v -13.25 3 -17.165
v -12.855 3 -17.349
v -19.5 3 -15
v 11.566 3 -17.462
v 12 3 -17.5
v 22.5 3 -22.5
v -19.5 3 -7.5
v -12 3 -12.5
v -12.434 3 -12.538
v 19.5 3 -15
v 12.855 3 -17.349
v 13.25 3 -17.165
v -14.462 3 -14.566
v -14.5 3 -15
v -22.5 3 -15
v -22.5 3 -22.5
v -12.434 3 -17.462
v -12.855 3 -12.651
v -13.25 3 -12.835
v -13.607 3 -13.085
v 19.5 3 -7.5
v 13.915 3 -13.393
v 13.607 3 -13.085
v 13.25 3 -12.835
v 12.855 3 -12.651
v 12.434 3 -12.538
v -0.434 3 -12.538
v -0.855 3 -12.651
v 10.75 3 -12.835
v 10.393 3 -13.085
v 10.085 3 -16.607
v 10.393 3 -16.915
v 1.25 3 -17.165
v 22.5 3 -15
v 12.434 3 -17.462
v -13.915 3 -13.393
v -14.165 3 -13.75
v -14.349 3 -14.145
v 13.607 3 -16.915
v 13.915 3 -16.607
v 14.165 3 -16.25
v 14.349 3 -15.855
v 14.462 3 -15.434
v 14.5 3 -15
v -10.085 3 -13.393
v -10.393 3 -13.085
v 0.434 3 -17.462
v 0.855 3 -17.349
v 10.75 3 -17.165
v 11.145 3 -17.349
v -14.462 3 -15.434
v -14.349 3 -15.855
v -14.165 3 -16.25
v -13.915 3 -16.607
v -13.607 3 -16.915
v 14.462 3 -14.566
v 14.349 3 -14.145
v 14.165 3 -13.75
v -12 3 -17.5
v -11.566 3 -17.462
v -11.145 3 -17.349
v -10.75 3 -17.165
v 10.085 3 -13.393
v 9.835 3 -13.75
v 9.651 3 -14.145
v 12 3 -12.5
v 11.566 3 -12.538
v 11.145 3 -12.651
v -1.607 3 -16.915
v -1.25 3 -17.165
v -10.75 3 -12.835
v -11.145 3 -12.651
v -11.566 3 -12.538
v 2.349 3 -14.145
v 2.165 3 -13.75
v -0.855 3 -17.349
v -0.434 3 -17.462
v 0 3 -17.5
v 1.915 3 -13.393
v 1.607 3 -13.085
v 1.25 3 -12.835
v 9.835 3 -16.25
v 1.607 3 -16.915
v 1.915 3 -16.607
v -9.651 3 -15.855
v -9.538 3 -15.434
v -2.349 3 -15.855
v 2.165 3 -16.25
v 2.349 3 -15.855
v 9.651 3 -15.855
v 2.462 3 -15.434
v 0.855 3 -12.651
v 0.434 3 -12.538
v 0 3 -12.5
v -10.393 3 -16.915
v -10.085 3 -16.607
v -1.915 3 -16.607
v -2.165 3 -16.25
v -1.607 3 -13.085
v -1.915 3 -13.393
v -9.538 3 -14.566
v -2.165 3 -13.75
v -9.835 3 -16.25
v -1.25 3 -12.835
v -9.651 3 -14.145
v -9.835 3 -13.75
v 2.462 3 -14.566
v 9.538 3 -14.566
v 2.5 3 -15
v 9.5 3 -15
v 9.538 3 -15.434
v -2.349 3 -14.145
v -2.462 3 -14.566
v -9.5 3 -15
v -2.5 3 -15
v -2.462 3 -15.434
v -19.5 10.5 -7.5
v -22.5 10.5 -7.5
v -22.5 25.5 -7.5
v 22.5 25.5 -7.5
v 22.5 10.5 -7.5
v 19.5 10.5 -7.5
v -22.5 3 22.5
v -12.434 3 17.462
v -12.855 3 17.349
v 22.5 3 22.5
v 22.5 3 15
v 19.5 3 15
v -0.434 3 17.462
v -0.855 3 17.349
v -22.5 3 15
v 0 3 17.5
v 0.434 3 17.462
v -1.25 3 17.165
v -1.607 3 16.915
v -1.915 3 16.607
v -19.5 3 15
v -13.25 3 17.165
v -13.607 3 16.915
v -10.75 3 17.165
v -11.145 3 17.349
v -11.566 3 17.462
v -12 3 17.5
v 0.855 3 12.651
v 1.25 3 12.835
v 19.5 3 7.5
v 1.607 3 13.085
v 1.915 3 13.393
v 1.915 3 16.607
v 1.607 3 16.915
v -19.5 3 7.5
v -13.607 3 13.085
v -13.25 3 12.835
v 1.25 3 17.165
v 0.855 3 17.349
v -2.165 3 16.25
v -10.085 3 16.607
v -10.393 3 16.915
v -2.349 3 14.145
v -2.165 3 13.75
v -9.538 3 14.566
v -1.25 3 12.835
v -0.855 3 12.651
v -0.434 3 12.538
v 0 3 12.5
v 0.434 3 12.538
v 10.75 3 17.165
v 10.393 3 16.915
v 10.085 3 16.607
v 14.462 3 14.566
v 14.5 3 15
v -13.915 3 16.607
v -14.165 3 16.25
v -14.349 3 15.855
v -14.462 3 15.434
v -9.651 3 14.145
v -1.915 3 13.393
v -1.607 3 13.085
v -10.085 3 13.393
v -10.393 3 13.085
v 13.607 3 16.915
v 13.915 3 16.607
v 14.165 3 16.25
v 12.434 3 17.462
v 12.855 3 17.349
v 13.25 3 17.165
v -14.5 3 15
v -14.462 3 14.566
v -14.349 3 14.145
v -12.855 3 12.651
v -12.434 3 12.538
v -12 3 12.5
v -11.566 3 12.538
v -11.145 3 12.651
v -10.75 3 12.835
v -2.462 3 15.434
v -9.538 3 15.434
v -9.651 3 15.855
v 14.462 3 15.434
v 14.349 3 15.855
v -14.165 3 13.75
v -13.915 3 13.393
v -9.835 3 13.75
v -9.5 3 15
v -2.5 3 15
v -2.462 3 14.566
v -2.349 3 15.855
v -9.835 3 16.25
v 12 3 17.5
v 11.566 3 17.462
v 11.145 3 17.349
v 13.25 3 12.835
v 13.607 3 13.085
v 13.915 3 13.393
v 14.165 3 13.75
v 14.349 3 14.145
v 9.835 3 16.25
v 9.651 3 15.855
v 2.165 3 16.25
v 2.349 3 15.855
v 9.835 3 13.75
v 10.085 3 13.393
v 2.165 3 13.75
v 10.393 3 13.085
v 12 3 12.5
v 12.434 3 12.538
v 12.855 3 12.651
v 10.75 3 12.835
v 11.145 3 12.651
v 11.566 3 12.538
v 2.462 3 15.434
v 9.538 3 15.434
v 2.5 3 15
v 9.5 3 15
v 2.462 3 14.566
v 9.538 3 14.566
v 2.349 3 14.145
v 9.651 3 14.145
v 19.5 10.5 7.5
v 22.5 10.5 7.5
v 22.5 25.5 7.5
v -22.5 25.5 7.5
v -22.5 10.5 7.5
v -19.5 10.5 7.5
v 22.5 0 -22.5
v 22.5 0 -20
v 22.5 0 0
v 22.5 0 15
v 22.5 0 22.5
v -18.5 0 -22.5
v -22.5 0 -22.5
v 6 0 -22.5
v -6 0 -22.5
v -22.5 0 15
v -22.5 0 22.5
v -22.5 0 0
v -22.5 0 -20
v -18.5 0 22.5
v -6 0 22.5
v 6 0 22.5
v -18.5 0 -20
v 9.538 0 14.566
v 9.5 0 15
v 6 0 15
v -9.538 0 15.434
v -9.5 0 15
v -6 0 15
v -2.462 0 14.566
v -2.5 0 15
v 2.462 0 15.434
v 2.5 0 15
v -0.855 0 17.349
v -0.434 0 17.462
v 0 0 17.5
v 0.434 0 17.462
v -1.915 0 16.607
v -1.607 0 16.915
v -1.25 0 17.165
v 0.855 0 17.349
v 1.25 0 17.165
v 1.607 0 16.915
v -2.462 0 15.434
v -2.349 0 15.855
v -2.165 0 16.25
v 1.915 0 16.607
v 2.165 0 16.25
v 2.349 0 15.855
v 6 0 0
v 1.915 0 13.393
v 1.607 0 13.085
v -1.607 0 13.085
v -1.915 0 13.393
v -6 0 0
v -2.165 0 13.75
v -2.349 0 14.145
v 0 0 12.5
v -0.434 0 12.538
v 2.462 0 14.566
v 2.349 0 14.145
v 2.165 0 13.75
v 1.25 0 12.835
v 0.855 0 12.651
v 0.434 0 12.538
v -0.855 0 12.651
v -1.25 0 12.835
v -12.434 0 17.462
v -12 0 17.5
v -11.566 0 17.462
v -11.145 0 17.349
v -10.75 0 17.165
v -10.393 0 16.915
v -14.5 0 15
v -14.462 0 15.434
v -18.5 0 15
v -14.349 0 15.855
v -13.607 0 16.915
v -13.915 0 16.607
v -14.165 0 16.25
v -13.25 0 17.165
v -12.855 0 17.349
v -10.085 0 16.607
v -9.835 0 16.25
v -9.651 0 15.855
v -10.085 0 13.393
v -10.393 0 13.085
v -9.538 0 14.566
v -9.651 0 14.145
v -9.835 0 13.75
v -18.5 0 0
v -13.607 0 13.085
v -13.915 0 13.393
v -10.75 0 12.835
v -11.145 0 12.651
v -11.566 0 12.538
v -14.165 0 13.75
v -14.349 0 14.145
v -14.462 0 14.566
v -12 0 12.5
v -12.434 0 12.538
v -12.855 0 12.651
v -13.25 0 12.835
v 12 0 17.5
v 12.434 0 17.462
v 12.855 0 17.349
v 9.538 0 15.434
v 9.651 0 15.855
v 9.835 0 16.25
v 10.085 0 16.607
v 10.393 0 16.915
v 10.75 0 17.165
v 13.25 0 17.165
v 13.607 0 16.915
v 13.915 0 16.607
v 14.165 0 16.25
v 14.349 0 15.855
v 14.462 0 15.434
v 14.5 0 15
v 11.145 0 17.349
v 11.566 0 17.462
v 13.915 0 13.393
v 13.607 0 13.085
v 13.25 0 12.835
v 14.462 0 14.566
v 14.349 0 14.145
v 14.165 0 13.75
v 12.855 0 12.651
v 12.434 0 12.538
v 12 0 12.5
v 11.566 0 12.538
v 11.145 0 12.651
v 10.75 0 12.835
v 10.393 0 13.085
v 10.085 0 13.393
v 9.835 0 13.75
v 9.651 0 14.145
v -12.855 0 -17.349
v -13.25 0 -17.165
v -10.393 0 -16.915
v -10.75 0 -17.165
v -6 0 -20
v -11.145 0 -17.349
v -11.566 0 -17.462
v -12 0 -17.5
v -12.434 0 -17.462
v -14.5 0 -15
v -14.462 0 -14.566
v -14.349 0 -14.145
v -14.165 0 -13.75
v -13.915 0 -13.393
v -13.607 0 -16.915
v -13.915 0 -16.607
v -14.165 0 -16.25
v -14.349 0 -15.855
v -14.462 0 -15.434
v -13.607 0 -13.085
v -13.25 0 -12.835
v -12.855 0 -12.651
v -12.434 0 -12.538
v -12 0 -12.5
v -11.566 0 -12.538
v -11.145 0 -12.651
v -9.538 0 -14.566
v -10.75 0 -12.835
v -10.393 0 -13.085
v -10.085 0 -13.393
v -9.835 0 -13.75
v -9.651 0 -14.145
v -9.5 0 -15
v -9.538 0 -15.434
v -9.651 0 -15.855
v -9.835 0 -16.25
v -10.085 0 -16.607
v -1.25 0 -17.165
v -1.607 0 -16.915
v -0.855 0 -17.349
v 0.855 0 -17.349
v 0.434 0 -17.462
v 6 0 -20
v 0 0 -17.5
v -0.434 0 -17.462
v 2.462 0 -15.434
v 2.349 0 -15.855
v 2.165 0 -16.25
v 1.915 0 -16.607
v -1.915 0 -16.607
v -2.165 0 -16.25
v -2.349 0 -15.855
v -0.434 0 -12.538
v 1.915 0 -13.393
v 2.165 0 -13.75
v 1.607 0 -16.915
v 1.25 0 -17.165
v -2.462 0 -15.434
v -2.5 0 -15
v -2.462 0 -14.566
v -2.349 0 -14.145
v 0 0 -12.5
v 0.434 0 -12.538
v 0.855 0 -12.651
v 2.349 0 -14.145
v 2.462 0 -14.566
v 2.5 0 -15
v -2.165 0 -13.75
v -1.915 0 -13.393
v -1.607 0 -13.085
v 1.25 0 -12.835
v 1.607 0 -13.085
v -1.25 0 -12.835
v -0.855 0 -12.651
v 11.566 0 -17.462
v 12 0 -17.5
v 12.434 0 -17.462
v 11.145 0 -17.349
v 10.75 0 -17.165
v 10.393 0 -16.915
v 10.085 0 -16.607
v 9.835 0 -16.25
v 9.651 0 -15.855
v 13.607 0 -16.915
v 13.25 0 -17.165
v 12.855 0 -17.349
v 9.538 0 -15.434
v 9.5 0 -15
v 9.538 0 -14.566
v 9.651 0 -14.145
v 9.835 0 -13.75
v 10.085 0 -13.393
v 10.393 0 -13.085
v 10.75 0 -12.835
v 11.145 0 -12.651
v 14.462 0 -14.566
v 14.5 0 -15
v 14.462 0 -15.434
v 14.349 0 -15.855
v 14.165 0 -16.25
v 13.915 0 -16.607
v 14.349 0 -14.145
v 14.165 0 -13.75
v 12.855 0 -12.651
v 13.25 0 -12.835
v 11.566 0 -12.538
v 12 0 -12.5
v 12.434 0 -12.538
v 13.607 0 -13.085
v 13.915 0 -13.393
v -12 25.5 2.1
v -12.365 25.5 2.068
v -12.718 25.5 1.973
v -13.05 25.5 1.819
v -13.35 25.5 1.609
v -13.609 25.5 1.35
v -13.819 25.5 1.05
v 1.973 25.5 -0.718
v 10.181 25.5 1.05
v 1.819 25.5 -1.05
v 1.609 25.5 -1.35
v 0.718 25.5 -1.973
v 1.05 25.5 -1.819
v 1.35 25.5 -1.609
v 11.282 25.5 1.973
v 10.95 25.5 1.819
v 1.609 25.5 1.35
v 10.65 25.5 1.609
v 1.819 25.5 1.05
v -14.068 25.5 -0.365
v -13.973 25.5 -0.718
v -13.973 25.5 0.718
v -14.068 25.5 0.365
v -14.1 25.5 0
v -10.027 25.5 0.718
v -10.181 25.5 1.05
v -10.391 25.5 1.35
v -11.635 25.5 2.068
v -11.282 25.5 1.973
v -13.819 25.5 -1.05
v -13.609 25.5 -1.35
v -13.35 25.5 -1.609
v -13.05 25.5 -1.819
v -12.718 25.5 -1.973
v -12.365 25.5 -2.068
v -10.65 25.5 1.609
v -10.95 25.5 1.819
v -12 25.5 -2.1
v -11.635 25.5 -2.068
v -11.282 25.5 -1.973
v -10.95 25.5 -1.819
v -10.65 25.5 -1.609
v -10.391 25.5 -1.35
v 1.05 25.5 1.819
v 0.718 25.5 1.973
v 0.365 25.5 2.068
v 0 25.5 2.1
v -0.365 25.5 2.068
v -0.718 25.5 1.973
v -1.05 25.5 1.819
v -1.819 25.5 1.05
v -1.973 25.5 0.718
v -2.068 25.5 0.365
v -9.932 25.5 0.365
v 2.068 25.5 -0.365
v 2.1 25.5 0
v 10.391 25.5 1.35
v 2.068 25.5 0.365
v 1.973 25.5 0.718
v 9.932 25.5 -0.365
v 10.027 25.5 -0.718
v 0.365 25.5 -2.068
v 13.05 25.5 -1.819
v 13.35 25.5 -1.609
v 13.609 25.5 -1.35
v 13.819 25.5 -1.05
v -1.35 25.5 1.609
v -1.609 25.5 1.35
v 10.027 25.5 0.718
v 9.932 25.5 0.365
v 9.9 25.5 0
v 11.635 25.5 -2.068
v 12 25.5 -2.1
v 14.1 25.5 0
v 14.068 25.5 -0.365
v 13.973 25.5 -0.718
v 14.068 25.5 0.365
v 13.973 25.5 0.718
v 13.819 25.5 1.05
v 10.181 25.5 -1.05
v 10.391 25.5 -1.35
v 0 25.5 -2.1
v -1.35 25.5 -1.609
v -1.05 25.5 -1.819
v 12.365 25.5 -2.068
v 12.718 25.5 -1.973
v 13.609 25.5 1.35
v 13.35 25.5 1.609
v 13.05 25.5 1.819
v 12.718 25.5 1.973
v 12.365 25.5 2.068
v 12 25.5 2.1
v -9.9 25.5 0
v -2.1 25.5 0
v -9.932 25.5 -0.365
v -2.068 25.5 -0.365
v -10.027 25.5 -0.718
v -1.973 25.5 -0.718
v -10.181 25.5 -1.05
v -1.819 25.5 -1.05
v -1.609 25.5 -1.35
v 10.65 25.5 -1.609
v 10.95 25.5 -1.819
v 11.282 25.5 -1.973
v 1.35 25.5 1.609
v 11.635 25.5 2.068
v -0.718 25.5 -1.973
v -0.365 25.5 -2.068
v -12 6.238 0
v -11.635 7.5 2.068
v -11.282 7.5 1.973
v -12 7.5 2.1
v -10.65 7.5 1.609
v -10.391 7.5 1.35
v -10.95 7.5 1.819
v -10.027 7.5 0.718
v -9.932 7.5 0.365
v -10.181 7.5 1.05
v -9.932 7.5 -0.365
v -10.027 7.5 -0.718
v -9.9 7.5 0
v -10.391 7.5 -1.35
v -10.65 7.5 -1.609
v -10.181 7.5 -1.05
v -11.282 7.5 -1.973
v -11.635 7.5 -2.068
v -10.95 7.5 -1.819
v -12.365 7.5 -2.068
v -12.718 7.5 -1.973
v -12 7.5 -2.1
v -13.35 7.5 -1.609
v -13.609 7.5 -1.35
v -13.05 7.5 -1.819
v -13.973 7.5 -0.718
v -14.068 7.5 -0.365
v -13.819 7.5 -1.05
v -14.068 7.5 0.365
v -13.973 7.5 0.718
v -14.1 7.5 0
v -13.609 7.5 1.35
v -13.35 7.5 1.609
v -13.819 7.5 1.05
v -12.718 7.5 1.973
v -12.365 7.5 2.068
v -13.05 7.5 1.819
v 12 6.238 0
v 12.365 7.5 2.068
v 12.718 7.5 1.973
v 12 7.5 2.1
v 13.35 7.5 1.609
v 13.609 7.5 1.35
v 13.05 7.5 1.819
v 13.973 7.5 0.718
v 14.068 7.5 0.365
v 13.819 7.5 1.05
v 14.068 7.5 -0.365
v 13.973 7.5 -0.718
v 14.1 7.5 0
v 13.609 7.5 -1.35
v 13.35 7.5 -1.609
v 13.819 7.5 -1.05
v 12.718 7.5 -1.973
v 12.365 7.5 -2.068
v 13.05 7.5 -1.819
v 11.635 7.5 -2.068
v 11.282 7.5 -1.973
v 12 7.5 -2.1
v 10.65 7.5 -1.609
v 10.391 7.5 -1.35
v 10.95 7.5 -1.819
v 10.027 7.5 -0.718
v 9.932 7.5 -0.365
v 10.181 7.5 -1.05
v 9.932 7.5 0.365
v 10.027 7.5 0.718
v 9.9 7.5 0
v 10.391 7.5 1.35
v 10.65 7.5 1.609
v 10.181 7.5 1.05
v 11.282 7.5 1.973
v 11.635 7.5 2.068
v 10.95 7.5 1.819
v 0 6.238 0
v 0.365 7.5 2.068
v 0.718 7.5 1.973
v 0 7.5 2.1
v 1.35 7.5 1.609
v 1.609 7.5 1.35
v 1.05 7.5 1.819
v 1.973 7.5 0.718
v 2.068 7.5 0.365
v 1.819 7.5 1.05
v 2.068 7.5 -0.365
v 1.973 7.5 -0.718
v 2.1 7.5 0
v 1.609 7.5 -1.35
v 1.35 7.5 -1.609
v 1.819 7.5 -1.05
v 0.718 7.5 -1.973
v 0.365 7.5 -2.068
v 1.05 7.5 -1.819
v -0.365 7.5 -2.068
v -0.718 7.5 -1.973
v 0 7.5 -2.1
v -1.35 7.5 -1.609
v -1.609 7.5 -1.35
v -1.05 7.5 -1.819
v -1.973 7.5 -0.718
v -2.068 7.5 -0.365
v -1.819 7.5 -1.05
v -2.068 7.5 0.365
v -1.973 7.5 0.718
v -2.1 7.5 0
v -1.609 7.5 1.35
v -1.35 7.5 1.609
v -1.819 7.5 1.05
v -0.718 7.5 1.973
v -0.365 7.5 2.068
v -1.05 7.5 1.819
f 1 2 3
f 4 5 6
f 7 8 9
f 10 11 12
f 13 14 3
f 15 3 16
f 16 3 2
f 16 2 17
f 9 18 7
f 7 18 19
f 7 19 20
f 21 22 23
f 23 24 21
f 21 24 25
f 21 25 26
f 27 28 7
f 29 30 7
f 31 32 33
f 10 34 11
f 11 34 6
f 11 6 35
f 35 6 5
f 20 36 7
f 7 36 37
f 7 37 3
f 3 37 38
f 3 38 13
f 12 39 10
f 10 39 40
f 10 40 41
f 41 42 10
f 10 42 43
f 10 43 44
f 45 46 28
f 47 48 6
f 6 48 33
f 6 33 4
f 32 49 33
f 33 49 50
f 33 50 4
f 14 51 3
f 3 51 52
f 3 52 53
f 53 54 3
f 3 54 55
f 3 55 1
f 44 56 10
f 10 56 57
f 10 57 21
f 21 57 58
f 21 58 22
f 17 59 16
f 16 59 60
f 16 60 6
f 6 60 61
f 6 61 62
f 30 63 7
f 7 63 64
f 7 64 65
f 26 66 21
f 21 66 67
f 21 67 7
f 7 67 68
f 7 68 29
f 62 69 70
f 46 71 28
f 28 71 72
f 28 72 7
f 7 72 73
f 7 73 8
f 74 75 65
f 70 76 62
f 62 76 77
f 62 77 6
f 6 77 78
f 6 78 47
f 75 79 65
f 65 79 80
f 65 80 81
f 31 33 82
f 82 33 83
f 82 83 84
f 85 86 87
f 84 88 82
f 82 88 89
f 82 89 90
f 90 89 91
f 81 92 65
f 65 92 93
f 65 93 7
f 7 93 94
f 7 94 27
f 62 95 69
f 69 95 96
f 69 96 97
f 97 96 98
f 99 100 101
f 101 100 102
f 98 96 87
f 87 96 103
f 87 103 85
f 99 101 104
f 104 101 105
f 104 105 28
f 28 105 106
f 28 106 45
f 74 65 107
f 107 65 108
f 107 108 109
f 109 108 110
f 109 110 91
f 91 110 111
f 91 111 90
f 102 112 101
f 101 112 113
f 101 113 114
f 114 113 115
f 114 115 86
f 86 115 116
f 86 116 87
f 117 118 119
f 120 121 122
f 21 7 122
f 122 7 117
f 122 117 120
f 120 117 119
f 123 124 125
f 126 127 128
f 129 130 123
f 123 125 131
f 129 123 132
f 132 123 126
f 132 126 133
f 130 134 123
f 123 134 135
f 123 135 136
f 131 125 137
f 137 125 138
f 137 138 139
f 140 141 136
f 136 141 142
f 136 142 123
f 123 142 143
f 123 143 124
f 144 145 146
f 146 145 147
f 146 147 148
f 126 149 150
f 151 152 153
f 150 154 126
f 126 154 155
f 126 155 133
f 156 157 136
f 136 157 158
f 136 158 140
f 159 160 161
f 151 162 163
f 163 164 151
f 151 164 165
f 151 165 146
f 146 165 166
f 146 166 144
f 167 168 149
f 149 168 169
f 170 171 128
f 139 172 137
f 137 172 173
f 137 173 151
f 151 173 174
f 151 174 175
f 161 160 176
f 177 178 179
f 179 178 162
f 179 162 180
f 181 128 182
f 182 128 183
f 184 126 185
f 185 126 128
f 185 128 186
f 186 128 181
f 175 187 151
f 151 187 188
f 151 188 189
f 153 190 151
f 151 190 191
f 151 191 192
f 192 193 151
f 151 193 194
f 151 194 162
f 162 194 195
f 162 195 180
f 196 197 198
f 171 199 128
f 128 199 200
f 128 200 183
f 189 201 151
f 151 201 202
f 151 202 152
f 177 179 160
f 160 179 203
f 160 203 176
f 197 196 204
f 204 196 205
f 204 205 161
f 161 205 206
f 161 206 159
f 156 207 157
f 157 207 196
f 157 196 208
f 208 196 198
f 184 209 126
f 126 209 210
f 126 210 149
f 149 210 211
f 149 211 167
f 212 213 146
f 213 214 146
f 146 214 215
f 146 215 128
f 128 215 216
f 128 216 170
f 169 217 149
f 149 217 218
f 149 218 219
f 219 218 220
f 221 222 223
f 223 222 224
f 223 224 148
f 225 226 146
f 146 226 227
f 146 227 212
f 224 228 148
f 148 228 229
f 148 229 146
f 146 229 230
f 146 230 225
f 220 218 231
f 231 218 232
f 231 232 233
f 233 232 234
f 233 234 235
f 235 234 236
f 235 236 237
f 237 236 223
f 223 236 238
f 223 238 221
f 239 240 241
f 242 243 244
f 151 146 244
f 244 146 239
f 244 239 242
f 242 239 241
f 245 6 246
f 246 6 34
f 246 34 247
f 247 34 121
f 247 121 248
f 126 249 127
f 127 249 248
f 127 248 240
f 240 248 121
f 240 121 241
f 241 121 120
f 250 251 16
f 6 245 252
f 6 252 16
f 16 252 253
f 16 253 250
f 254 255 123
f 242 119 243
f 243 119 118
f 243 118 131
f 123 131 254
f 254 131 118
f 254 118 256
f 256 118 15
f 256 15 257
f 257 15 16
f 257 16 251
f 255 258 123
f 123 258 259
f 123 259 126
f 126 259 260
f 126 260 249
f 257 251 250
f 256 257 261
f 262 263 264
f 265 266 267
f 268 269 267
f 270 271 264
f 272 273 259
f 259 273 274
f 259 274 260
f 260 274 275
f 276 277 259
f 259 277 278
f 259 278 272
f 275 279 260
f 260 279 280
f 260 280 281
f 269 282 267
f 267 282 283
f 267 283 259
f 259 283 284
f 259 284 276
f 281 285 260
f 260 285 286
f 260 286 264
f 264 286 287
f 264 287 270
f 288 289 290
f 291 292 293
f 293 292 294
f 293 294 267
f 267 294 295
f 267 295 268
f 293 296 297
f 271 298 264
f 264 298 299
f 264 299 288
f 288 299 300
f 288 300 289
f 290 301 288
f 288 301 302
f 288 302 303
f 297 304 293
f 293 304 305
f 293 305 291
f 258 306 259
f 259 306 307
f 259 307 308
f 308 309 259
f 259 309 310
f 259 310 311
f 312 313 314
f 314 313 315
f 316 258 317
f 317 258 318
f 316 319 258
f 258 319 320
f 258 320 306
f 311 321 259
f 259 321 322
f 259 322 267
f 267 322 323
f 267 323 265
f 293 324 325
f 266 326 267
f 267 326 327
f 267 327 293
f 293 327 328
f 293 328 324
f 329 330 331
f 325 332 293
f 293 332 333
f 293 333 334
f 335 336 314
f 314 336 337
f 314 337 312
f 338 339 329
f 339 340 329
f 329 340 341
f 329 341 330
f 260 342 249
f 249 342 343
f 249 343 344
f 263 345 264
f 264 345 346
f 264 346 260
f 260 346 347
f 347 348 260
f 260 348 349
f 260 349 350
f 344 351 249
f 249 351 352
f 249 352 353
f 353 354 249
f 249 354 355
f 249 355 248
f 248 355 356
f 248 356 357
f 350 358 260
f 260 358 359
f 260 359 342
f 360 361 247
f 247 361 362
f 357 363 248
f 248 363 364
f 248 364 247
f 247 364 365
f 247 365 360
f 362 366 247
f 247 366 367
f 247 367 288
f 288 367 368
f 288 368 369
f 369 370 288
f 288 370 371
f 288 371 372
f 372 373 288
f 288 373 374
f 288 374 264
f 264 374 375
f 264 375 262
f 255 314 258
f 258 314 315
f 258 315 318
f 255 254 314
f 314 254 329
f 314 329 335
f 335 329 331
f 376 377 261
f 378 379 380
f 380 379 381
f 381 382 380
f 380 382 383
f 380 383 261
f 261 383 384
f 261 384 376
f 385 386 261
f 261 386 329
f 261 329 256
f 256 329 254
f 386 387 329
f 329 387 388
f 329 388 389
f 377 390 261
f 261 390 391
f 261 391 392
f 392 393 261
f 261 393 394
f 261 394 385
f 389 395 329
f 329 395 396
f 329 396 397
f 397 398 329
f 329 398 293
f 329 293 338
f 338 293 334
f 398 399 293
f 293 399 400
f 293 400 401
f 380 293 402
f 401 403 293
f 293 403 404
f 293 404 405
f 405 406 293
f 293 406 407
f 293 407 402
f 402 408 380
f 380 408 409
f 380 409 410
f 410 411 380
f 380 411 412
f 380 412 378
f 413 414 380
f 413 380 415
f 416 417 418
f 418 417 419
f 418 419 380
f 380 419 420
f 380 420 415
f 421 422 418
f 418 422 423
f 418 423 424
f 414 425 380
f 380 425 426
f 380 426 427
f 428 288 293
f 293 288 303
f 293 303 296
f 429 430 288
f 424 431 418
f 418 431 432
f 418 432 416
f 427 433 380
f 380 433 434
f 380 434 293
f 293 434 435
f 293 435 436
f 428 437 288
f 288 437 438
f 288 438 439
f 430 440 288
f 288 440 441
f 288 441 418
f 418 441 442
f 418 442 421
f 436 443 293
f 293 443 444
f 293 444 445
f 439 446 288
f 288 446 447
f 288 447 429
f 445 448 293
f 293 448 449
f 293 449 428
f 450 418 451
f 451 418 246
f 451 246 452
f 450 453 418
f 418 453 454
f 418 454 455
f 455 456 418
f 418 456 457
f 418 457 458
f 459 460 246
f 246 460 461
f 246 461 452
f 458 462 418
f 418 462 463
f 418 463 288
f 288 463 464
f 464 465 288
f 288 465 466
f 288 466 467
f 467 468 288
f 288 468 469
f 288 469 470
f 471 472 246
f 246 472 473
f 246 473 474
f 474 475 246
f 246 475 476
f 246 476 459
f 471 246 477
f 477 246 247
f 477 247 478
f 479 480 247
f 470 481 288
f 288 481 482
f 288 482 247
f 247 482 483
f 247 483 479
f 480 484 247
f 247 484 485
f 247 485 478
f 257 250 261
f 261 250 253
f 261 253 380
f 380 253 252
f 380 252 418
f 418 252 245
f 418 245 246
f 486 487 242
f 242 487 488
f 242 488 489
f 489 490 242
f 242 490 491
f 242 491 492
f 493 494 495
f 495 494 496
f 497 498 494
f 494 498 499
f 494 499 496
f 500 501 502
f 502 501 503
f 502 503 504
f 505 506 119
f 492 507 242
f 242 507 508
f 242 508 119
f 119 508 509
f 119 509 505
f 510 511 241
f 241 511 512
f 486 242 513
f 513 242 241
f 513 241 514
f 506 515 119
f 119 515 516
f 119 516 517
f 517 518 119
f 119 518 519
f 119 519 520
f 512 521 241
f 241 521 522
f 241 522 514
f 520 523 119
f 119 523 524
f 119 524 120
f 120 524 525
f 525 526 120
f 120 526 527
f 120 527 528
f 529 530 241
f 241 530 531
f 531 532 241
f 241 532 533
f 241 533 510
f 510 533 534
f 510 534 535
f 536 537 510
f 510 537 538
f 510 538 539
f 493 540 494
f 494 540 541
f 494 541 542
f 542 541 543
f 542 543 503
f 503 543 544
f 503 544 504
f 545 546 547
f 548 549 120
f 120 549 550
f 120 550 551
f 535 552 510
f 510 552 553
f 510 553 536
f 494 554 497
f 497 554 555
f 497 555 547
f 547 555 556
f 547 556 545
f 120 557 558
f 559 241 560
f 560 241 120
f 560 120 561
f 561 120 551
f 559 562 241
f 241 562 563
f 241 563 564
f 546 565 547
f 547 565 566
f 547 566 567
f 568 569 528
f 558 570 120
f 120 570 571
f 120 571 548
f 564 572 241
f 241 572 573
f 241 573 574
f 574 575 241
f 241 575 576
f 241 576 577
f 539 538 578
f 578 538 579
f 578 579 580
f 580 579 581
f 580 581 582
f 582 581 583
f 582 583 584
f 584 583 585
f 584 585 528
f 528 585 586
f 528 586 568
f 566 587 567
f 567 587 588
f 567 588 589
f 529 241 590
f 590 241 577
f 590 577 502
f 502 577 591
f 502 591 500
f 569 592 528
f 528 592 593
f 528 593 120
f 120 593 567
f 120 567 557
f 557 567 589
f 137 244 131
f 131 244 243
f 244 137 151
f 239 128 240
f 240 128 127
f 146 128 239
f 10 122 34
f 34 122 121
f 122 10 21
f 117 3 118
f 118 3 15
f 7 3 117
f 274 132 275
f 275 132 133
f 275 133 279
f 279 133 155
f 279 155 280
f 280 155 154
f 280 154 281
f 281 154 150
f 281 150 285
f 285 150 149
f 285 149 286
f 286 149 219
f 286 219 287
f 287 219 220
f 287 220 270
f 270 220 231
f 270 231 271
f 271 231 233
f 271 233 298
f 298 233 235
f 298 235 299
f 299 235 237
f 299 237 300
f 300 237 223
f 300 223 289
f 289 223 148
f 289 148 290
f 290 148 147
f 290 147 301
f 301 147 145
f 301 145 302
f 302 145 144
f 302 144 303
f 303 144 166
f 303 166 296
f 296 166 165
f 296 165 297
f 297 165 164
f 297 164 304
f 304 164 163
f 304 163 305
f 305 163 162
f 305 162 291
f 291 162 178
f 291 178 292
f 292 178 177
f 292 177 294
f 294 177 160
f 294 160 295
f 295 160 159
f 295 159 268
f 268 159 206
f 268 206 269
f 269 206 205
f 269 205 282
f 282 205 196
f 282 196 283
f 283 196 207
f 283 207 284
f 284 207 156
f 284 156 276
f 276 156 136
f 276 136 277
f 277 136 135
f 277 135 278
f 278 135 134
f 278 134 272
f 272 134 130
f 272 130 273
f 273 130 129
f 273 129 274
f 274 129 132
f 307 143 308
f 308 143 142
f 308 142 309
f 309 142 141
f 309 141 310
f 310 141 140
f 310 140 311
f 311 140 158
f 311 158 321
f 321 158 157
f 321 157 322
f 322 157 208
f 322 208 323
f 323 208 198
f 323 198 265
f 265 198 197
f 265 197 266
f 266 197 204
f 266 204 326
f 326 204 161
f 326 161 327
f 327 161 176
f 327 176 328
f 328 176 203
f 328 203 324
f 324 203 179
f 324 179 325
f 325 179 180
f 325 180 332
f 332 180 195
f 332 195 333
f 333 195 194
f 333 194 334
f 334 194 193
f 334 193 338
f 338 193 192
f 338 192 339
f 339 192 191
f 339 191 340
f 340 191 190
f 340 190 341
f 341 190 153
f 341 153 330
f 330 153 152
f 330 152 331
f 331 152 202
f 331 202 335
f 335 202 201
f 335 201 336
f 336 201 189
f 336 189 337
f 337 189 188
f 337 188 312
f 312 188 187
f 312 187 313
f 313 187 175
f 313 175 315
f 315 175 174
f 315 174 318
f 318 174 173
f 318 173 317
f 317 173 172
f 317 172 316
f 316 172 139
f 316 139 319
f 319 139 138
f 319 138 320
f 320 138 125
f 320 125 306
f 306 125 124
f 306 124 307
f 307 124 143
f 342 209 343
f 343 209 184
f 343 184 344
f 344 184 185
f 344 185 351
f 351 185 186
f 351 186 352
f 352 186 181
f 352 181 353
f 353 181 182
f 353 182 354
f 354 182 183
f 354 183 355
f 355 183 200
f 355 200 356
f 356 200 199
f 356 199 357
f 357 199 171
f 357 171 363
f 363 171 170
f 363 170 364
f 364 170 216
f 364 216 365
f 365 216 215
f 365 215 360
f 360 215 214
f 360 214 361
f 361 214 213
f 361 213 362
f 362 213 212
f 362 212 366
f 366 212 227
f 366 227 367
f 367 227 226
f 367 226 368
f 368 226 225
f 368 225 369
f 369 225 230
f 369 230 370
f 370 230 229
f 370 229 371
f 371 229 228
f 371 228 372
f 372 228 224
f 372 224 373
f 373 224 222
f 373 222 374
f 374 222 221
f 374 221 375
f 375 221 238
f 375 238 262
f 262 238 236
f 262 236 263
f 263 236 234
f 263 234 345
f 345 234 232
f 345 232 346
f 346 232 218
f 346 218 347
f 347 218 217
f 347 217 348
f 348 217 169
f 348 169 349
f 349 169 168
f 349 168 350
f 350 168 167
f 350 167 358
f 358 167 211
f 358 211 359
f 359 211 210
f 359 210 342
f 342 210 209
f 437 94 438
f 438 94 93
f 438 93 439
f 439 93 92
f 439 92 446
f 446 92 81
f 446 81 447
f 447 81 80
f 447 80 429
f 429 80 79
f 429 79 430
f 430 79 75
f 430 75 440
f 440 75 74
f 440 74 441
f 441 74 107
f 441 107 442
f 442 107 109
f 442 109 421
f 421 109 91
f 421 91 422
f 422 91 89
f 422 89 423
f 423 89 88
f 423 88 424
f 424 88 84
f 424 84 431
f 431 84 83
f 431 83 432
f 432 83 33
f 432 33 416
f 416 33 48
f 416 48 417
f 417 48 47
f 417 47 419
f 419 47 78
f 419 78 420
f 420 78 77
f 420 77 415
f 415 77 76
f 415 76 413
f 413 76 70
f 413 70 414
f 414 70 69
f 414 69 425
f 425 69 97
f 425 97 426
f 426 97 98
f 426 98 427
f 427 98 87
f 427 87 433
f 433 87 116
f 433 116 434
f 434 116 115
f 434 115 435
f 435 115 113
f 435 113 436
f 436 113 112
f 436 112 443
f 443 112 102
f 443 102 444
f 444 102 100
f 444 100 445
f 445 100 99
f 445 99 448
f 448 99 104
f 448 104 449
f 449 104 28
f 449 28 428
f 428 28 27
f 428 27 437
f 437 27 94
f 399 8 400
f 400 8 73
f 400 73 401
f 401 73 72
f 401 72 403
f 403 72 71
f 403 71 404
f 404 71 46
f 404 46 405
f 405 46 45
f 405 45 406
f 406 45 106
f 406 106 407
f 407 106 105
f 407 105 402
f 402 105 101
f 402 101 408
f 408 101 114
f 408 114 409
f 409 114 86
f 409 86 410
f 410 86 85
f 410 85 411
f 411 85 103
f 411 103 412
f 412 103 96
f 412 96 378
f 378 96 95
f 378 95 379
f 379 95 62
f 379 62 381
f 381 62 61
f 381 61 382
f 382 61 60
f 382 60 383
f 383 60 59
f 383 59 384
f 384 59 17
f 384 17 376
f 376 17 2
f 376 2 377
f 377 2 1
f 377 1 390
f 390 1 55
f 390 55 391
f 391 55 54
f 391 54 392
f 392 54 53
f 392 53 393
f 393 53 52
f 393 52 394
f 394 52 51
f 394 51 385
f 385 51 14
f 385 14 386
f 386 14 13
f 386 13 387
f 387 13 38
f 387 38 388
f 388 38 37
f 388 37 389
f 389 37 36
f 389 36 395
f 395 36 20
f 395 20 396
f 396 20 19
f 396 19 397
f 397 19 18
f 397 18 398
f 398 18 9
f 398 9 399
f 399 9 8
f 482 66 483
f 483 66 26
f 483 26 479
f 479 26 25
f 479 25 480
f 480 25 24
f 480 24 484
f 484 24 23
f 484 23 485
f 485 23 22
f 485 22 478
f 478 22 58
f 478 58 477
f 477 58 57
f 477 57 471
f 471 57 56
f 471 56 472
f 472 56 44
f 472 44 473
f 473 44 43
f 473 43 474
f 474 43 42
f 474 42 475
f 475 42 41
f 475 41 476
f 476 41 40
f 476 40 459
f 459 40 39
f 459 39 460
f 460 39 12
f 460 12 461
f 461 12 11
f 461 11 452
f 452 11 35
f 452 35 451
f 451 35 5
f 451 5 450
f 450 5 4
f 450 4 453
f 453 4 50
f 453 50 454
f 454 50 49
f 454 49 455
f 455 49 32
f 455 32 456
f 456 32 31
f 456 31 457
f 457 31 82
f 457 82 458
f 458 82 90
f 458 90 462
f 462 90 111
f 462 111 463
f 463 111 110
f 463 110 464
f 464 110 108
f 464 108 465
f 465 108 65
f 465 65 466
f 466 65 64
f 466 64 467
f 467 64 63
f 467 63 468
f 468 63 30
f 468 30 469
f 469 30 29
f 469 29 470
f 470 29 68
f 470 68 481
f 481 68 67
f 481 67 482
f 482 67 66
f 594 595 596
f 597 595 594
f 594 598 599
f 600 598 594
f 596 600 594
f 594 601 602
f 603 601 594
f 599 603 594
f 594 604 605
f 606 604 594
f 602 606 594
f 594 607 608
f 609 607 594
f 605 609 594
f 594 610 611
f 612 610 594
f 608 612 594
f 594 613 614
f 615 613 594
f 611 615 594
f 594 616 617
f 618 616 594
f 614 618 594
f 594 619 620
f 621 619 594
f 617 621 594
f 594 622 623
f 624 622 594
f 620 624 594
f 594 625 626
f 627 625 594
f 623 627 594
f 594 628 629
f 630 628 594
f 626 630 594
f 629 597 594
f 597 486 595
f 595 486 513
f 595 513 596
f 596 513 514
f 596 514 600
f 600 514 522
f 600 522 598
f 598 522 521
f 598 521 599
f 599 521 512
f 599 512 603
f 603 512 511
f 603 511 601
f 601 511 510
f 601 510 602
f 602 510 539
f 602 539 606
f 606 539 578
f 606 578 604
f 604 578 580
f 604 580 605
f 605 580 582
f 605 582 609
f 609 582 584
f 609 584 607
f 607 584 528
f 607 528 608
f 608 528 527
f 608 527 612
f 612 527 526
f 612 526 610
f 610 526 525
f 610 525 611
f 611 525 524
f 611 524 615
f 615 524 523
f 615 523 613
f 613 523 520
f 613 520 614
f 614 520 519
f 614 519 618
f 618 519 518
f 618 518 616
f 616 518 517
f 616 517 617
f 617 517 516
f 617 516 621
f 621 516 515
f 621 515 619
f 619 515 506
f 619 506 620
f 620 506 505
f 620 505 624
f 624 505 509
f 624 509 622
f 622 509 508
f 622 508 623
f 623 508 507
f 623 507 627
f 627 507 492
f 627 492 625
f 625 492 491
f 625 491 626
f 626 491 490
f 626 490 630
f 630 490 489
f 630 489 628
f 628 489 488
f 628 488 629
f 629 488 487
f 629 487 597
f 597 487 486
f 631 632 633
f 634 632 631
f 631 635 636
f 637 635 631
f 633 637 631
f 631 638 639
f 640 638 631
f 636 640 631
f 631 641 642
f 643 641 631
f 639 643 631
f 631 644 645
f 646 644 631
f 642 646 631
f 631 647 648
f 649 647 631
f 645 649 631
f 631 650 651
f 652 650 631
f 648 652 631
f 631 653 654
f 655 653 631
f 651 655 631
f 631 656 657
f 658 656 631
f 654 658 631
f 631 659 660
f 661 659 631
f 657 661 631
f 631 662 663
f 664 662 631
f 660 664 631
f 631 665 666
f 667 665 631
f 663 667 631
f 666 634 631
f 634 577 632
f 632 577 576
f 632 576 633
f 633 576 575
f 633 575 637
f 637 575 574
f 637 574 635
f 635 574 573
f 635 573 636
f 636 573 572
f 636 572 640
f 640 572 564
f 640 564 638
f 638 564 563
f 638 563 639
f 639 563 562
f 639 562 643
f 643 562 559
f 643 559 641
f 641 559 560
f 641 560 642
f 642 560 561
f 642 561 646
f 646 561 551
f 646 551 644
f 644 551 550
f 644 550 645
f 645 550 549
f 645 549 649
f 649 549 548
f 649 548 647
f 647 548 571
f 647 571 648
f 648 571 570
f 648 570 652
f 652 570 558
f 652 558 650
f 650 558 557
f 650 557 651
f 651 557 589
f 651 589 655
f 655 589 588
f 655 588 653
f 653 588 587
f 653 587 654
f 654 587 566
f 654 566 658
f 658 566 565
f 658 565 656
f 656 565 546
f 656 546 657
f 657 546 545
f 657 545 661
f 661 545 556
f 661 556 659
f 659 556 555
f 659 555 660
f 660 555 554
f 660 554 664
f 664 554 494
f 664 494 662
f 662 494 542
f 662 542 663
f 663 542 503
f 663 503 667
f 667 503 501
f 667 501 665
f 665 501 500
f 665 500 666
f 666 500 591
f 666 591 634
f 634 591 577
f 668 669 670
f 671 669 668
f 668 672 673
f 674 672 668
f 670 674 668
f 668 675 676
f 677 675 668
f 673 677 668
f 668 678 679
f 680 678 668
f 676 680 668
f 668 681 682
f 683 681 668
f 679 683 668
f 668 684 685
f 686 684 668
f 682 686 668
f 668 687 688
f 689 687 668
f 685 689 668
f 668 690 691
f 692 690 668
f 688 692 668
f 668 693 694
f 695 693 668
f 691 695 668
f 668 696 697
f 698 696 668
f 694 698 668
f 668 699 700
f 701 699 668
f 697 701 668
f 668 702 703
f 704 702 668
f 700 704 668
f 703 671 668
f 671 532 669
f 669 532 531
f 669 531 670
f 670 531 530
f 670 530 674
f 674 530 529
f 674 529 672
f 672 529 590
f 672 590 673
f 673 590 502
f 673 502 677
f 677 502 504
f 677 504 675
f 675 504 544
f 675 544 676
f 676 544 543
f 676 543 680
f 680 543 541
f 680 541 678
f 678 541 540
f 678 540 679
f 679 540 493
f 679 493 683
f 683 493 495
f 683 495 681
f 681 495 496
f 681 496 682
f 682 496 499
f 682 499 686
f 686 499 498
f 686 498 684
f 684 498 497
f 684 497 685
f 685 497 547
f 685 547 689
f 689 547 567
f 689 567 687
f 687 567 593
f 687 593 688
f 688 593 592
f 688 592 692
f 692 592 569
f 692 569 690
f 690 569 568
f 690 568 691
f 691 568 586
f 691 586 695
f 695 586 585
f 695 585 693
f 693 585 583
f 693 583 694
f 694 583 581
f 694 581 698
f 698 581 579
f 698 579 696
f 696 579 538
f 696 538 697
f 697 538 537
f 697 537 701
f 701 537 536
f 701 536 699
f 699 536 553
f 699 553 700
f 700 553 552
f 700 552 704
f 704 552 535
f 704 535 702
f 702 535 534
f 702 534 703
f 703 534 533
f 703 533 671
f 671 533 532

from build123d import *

# Parameters (mm, degrees)
CROQUIS1_W                = 45
CROQUIS1_H                = 45
SALIENTE_EXTRUIR1_DEPTH   = 3
CROQUIS2_W                = 45
CROQUIS2_H                = 15
SALIENTE_EXTRUIR2_DEPTH   = 22.5
SALIENTE_EXTRUIR3_DEPTH   = 3
SIMETR_A2_COPY_1_DEPTH    = 3
CROQUIS4_R                = 2.5
CORTAR_EXTRUIR1_DEPTH     = 3
TALADRO_ROSCADO_M51_D     = 4.2
TALADRO_ROSCADO_M51_DEPTH = 18
TALADRO_ROSCADO_M51_TIP   = 1.2618073


with BuildPart() as part:
    # Croquis1 → Saliente-Extruir1 (new body)
    with BuildSketch(Plane(origin=(0, 0, 0), x_dir=(1, 0, 0), z_dir=(0, 1, 0))):
        Rectangle(CROQUIS1_W, CROQUIS1_H)
    extrude(amount=SALIENTE_EXTRUIR1_DEPTH)

    # Croquis2 → Saliente-Extruir2 (add)
    with BuildSketch(Plane(origin=(0, 3, 0), x_dir=(1, 0, 0), z_dir=(0, 1, 0))):
        Rectangle(CROQUIS2_W, CROQUIS2_H)
    extrude(amount=SALIENTE_EXTRUIR2_DEPTH)

    # Croquis3 → Saliente-Extruir3 (add)
    with BuildSketch(Plane.ZY.offset(22.5)):
        Polygon((7.5, 3), (15, 3), (7.5, 10.5), align=None)
    saliente_extruir3 = extrude(amount=-SALIENTE_EXTRUIR3_DEPTH)

    # Simetría1: Saliente-Extruir3 across plane
    add(saliente_extruir3.mirror(Plane(origin=(0, 0, 0), x_dir=(0, 0, 1), z_dir=(1, 0, 0))))

    # Simetría2: Saliente-Extruir3 across plane
    add(saliente_extruir3.mirror(Plane.XY))

    # Simetría2 copy 1 sketch → Simetría2 copy 1 (add)
    with BuildSketch(Plane(origin=(22.5, 0, 0), x_dir=(0, 0, -1), z_dir=(1, 0, 0))):
        Polygon((7.5, 3), (15, 3), (7.5, 10.5), align=None)
    extrude(amount=-SIMETR_A2_COPY_1_DEPTH)

    # Croquis4 → Cortar-Extruir1 (cut)
    with BuildSketch(Plane(origin=(0, 3, 0), x_dir=(1, 0, 0), z_dir=(0, 1, 0))):
        with Locations(Location((0, -15, 0), (0, 0, 270))):
            Circle(CROQUIS4_R)
        with Locations(Location((-12, -15, 0), (0, 0, 270))):
            Circle(CROQUIS4_R)
        with Locations(Location((12, -15, 0), (0, 0, 270))):
            Circle(CROQUIS4_R)
    cortar_extruir1 = extrude(amount=-CORTAR_EXTRUIR1_DEPTH, mode=Mode.SUBTRACT)

    # Simetría3: Cortar-Extruir1 across plane
    add(cortar_extruir1.mirror(Plane.XY), mode=Mode.SUBTRACT)

    # Taladro roscado M51
    with Locations(Plane(origin=(0, 25.5, 0), x_dir=(1, 0, 0), z_dir=(0, 1, 0))):
        with Locations((0, 0), (12, 0), (-12, 0)):
            Hole(TALADRO_ROSCADO_M51_D / 2, depth=TALADRO_ROSCADO_M51_DEPTH)
            with Locations((0, 0, -(TALADRO_ROSCADO_M51_DEPTH + TALADRO_ROSCADO_M51_TIP / 2))):  # 118° drill point
                Cone(0, TALADRO_ROSCADO_M51_D / 2, TALADRO_ROSCADO_M51_TIP, mode=Mode.SUBTRACT)


solid = part.part
